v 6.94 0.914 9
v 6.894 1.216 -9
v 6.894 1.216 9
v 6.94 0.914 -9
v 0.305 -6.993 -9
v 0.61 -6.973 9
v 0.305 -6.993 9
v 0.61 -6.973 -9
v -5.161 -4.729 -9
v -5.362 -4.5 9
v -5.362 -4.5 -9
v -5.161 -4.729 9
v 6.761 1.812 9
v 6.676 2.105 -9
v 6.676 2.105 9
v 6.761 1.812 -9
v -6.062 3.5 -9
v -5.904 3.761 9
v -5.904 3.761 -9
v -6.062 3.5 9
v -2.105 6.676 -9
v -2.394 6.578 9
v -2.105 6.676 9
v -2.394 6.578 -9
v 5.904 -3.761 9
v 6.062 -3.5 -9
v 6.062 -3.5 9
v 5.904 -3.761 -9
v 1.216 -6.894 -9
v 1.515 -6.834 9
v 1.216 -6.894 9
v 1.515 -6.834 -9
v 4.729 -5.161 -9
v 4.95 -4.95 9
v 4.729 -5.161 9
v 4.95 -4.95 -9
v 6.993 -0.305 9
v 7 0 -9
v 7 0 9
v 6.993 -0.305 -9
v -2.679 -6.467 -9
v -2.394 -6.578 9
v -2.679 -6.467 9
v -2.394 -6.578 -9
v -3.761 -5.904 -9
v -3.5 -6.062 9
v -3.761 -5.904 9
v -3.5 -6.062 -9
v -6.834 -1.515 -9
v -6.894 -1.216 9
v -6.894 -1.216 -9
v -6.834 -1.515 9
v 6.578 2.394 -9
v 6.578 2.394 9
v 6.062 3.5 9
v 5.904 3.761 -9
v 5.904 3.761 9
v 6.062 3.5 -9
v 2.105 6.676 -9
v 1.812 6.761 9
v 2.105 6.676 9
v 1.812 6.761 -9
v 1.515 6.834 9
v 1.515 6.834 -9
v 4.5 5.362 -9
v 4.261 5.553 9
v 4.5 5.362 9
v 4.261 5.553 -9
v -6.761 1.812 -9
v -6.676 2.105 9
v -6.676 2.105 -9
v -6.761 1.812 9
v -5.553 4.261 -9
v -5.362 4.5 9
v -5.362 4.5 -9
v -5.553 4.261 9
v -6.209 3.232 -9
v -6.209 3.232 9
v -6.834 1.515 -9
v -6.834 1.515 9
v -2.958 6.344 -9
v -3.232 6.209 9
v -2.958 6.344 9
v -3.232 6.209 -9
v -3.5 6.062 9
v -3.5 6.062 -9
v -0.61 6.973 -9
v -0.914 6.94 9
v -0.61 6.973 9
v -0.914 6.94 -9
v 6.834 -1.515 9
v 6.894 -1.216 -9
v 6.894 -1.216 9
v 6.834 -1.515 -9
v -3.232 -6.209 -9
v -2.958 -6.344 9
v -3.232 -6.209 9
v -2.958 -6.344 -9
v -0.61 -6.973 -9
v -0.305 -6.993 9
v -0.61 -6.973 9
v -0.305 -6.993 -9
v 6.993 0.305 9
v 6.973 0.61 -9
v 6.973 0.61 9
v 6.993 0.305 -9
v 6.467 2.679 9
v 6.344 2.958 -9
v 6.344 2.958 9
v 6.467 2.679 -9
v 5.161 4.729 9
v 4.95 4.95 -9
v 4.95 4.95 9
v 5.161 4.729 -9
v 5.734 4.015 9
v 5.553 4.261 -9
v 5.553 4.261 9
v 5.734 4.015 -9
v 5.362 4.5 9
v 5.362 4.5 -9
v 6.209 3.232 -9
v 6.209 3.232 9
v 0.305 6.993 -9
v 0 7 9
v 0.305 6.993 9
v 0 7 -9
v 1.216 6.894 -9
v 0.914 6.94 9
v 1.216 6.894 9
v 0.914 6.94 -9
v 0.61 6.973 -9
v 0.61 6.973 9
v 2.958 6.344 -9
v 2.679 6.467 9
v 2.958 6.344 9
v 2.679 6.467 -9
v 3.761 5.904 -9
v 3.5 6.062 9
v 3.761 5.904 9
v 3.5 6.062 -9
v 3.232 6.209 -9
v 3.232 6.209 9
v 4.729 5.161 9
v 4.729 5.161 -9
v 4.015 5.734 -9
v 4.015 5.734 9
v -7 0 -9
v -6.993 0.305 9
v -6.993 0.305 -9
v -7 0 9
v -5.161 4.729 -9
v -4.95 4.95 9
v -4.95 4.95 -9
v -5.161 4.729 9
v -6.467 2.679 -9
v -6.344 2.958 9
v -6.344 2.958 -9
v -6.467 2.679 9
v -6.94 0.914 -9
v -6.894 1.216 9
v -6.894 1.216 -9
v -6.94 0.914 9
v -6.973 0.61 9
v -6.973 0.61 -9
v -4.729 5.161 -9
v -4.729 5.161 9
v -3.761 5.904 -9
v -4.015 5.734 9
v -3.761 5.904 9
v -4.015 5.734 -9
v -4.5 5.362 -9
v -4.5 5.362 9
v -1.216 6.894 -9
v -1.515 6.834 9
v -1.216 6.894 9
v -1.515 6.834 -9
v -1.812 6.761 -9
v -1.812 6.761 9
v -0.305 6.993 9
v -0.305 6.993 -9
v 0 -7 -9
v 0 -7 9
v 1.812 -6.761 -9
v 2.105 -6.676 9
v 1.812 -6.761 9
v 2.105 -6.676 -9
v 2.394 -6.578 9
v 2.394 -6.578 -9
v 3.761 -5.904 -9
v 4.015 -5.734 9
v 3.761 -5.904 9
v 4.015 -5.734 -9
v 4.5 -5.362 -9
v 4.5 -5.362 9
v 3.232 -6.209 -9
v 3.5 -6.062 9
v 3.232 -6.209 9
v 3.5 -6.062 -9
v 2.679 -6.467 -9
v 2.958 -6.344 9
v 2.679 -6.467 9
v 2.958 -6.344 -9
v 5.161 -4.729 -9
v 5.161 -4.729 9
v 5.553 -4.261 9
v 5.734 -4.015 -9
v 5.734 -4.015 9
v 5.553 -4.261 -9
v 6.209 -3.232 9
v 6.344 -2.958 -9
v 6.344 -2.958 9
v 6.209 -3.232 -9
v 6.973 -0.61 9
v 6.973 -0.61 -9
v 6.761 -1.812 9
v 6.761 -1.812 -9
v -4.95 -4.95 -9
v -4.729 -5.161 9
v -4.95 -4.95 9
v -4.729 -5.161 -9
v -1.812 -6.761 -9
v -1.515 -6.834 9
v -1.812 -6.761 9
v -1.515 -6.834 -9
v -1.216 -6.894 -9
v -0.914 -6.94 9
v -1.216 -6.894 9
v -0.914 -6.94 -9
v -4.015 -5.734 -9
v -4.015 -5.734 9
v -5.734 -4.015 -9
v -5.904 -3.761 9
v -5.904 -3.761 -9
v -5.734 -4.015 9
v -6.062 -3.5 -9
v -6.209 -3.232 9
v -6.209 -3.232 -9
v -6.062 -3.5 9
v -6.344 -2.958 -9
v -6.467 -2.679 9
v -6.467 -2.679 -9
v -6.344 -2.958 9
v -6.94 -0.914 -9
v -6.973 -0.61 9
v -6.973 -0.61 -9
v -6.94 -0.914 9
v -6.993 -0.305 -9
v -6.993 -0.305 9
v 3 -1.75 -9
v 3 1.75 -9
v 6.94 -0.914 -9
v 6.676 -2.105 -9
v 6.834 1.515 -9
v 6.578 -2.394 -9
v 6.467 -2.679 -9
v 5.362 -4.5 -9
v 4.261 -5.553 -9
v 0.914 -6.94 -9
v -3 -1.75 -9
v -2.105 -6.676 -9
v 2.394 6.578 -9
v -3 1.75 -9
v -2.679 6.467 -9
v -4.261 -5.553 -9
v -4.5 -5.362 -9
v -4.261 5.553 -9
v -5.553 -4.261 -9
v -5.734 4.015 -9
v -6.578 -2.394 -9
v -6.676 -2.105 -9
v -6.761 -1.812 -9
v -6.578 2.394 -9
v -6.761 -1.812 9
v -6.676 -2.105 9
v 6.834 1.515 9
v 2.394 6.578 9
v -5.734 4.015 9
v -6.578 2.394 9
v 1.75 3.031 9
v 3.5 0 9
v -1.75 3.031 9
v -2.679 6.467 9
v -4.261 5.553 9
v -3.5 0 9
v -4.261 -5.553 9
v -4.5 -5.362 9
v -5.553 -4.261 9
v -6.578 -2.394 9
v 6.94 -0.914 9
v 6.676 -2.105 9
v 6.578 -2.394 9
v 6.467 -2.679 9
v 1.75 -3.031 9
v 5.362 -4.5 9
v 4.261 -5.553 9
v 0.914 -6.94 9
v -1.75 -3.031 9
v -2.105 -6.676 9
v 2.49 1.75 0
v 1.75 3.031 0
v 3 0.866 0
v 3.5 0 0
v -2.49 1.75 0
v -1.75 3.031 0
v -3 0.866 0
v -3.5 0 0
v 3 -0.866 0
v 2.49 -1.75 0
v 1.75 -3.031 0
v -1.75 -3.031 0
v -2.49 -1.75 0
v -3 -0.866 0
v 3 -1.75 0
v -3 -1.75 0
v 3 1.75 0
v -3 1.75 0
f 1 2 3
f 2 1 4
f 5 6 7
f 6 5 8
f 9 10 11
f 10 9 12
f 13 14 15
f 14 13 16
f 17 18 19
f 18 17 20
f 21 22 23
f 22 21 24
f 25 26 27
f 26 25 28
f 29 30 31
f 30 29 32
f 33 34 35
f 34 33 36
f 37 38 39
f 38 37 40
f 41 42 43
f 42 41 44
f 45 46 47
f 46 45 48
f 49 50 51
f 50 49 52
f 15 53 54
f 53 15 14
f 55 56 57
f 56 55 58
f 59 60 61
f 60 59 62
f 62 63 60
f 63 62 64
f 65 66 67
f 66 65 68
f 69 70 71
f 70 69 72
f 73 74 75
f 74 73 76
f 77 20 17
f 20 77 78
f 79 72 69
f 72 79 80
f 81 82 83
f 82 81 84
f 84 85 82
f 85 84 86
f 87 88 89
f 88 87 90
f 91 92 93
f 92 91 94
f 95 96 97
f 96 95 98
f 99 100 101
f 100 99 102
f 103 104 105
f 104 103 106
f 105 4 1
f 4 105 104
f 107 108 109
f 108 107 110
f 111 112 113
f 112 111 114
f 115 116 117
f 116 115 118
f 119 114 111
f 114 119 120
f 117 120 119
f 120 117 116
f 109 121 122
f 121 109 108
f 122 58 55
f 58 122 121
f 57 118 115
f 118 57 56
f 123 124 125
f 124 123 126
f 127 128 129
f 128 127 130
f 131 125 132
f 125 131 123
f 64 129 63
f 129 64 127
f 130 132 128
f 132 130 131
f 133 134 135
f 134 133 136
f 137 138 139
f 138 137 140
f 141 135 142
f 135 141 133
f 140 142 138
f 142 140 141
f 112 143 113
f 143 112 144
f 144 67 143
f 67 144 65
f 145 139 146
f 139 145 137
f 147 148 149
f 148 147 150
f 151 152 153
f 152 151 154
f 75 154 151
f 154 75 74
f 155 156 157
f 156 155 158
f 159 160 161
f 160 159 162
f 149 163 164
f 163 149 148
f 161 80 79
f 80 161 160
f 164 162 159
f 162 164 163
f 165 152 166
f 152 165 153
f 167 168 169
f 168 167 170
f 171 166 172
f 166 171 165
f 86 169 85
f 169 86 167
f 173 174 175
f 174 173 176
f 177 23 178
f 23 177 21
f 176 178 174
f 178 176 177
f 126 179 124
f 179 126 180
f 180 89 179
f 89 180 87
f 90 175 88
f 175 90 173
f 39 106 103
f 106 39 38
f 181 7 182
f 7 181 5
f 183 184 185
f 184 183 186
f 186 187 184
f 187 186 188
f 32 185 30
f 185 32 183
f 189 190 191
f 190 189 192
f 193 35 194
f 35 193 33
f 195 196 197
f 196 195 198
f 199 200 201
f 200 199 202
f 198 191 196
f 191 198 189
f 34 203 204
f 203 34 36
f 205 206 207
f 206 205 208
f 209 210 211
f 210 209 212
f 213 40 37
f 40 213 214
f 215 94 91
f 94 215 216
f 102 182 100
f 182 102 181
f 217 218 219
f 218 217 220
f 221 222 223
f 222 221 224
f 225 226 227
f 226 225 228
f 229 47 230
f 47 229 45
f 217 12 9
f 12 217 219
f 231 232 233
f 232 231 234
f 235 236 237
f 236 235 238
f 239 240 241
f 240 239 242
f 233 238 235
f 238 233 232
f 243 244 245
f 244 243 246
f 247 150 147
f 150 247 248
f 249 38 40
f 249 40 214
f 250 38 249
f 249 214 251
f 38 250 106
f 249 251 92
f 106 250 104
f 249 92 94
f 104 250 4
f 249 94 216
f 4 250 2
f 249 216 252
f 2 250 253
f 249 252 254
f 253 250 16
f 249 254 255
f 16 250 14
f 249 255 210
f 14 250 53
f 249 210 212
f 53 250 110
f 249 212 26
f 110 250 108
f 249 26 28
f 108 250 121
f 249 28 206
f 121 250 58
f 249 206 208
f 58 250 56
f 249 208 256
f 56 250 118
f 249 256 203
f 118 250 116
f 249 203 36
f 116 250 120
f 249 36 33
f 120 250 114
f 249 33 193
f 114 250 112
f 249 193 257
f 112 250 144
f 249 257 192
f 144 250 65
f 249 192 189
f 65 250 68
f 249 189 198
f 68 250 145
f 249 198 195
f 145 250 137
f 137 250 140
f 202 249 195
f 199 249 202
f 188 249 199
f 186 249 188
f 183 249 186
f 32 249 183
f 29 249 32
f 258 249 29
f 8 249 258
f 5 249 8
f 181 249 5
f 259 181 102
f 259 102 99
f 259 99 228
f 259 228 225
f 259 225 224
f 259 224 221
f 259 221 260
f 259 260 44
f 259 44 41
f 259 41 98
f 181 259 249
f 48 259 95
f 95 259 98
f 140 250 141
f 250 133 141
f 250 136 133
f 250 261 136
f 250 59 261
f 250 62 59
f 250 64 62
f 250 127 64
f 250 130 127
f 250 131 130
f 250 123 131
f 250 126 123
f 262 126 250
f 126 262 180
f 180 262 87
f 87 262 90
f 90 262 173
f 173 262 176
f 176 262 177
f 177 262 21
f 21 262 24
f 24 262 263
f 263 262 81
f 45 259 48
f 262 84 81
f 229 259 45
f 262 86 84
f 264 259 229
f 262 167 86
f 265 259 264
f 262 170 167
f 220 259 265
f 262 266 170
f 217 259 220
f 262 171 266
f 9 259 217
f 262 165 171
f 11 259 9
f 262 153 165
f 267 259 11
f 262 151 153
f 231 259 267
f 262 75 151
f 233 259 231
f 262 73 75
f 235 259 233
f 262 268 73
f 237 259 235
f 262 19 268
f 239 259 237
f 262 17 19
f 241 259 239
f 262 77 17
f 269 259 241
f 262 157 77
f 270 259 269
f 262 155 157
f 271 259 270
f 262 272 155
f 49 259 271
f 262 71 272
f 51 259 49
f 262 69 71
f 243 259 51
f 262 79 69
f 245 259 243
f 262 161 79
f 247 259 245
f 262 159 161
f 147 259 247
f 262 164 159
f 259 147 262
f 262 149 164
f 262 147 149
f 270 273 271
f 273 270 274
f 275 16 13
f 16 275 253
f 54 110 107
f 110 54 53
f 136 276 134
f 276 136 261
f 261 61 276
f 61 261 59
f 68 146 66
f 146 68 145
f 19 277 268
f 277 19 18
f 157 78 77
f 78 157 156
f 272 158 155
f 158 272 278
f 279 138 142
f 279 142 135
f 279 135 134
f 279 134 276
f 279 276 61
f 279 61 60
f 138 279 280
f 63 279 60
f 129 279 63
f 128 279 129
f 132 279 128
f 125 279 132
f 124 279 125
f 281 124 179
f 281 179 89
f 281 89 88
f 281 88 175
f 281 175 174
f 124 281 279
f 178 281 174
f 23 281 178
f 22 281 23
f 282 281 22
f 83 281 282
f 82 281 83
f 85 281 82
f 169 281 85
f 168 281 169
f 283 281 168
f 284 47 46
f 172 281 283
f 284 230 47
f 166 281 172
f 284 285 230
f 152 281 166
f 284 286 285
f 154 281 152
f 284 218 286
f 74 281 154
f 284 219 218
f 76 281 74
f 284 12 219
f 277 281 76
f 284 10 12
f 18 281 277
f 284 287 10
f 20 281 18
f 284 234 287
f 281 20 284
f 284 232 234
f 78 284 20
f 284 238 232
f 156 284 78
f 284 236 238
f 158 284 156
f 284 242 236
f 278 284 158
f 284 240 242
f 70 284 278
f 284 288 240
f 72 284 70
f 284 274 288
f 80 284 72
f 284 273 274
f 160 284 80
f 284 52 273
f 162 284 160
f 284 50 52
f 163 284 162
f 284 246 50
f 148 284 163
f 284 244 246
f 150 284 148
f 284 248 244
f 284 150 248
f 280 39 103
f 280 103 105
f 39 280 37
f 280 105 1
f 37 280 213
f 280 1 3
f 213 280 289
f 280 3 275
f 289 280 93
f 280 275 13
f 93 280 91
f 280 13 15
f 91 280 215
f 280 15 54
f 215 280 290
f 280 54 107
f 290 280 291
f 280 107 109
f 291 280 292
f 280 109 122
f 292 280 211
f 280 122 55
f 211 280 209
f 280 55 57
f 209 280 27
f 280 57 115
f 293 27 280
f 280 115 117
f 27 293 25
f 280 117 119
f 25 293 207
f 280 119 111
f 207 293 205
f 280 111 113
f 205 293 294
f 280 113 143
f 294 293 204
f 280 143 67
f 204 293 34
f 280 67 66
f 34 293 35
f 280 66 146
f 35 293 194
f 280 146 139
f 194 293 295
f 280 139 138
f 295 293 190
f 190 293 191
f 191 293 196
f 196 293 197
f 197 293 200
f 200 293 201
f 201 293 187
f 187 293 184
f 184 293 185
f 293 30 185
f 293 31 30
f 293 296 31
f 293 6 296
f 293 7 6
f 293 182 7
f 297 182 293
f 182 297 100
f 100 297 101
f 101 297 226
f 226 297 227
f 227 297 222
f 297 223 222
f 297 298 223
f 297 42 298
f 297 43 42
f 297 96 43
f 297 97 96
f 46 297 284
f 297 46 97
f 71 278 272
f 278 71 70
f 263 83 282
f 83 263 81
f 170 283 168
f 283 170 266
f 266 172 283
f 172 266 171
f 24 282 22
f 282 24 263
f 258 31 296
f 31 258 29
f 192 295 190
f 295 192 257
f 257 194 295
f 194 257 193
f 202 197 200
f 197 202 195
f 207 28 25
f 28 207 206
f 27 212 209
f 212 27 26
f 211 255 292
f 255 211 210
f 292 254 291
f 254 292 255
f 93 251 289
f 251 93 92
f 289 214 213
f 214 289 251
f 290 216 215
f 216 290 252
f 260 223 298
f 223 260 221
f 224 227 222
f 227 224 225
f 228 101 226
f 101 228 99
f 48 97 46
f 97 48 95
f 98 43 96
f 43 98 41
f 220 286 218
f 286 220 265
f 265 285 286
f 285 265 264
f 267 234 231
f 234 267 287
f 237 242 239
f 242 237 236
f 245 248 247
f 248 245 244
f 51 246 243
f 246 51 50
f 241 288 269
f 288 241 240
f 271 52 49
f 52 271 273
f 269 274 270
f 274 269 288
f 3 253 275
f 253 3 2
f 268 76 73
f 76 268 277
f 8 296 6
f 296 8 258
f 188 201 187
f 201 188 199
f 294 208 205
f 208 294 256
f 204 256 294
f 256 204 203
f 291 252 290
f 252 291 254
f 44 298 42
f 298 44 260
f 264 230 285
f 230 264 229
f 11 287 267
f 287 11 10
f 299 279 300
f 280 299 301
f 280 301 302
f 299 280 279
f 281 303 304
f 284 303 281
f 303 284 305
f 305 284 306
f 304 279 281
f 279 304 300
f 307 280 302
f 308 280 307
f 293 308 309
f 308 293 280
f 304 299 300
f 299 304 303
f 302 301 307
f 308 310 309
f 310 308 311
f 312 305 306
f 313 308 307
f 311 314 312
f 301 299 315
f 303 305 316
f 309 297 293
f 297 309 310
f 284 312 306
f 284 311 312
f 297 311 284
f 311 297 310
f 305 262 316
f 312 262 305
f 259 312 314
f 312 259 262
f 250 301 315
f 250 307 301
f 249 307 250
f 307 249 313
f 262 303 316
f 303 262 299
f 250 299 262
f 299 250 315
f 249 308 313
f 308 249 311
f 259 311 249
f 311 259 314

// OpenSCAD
$fn=144;

shaft_diameter = 6.5;
blind_shaft = 4;

difference() {
    cylinder(18, 7, 7,center = true);
    
    //Blinds shaft
    //translate([-shaft_diameter/2, -shaft_diameter/2, 7])
        cylinder(d=7, h=9,$fn=6);
    
    // Motor shaft
   // translate([-6/2, -3.5/2, 0])
     translate([-6/2, -3.5/2, -9])
        cube([6,3.5,9]);
};
